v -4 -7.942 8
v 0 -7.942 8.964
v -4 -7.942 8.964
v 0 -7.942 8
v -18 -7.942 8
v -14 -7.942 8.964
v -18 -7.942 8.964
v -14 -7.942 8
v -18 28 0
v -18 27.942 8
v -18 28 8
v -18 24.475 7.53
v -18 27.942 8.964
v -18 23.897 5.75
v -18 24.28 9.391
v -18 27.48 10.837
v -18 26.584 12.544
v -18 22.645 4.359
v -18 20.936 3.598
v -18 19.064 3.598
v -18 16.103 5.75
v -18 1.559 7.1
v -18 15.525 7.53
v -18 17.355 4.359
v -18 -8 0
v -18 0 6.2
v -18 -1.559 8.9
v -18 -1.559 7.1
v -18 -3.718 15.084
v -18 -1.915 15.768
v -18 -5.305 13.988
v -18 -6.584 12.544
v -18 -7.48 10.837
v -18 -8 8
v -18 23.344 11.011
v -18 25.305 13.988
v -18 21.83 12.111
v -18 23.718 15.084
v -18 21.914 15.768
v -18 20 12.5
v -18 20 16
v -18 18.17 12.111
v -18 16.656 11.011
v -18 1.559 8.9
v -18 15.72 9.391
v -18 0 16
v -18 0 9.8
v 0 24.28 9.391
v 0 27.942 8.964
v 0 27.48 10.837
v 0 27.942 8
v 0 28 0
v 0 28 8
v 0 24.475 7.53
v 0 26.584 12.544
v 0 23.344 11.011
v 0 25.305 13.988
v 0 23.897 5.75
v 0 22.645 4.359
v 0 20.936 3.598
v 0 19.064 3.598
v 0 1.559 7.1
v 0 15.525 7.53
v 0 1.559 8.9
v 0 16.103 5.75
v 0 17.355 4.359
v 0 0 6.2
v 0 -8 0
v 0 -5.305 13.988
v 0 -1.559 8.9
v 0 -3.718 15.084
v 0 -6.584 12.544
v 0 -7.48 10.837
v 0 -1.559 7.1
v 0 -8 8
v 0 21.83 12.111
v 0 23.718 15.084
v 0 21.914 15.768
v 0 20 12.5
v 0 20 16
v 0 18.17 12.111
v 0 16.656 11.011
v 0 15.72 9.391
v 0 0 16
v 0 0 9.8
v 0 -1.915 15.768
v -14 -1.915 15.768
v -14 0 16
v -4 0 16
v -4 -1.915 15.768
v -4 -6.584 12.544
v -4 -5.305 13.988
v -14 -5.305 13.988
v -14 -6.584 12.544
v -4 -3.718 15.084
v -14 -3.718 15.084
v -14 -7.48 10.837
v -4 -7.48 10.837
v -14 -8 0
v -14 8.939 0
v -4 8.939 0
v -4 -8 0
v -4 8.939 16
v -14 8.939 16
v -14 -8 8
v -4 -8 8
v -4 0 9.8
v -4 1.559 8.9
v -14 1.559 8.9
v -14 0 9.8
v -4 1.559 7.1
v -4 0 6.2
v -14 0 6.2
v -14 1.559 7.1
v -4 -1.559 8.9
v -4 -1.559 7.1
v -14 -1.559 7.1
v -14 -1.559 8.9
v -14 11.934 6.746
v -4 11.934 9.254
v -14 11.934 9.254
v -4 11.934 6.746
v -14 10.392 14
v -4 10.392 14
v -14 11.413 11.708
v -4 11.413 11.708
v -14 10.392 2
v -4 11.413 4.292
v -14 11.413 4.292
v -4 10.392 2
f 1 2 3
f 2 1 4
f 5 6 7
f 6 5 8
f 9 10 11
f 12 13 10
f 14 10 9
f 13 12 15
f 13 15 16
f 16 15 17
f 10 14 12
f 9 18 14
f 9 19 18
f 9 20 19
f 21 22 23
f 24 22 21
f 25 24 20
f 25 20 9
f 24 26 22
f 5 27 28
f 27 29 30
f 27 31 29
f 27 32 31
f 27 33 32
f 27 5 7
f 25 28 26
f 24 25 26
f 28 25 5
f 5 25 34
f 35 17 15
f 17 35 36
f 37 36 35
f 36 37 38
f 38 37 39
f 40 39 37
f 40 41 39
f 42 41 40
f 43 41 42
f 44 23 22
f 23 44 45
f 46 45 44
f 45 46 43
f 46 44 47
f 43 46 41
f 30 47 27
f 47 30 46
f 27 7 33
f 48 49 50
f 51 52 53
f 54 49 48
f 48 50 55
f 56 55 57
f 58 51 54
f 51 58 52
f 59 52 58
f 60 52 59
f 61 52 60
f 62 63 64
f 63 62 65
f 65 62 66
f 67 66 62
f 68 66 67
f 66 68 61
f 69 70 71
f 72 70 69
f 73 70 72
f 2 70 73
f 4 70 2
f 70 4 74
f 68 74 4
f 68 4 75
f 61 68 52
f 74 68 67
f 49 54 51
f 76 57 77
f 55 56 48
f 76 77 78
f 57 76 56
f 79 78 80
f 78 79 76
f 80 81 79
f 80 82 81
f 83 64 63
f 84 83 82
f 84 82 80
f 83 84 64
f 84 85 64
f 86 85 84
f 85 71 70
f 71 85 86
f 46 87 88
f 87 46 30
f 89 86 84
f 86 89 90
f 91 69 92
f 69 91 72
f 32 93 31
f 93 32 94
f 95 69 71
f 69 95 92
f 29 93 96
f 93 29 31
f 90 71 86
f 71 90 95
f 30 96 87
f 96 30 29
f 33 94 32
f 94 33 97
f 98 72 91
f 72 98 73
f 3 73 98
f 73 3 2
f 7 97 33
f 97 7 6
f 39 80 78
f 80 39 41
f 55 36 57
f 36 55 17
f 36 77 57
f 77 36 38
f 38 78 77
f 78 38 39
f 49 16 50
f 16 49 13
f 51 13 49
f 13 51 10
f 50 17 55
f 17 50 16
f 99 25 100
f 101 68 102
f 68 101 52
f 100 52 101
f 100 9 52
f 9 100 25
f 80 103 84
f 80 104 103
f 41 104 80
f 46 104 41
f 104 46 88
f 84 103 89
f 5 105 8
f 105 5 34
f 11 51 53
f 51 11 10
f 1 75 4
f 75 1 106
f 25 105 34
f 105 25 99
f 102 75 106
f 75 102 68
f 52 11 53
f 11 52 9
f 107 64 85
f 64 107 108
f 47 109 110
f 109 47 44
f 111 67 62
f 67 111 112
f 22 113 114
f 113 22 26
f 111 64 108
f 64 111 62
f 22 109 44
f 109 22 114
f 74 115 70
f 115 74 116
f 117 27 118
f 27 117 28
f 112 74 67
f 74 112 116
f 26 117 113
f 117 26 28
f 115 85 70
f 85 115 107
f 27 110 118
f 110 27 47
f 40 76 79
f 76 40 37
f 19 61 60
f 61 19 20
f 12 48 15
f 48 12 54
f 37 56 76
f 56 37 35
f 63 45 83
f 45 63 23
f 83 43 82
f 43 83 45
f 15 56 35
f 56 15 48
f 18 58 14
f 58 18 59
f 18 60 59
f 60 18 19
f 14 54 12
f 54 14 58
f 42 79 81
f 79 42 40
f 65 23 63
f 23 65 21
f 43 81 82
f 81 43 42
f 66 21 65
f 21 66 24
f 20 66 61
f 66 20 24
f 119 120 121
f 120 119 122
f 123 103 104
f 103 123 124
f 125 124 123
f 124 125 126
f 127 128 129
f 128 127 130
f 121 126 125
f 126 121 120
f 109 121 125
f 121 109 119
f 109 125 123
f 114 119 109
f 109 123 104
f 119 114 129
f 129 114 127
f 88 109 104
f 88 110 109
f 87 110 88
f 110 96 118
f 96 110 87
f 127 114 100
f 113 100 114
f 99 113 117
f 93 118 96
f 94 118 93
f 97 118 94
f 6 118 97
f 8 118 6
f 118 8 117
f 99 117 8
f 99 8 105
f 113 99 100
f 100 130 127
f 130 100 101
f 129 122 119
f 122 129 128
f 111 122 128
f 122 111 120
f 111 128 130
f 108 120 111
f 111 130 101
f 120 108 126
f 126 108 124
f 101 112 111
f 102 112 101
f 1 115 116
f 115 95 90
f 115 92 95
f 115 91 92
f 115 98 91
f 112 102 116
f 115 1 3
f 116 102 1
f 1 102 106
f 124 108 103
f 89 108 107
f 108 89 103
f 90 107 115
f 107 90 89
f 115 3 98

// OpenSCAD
// Carbon i3 Modified

// PRUSA iteration3
// Y idler
// GNU GPL v3
// Josef Průša <iam@josefprusa.cz> and contributors
// http://www.reprap.org/wiki/Prusa_Mendel
// http://prusamendel.org


module y_idler_base(){
 translate(v = [0,0,0]) cylinder(h = 18, r=8);	
 translate(v = [0,20,0]) cylinder(h = 18, r=8);
 translate(v = [0,10,9]) cube(size = [16,20,18], center=true);
 translate(v = [-4,10,9]) cube(size = [8,16+20,18], center=true);
    // Varias linhas alteradas acima // Bruno
}

module y_idler_holes(){
 translate(v = [0,0,-1]) cylinder(h = 120, r=1.8);	
 translate(v = [0,20,-1]) cylinder(h = 25, r=4.5);
 //translate(v = [0,0,4]) cylinder(h = 11, r=12);
 translate(v = [0,0,4]) cylinder(h = 10, r=12);
}

// Final part
module y_idler(){
 translate(v = [0,0,8])rotate([0,-90,0]) difference(){
  y_idler_base();
  y_idler_holes();
 }
}

y_idler();
